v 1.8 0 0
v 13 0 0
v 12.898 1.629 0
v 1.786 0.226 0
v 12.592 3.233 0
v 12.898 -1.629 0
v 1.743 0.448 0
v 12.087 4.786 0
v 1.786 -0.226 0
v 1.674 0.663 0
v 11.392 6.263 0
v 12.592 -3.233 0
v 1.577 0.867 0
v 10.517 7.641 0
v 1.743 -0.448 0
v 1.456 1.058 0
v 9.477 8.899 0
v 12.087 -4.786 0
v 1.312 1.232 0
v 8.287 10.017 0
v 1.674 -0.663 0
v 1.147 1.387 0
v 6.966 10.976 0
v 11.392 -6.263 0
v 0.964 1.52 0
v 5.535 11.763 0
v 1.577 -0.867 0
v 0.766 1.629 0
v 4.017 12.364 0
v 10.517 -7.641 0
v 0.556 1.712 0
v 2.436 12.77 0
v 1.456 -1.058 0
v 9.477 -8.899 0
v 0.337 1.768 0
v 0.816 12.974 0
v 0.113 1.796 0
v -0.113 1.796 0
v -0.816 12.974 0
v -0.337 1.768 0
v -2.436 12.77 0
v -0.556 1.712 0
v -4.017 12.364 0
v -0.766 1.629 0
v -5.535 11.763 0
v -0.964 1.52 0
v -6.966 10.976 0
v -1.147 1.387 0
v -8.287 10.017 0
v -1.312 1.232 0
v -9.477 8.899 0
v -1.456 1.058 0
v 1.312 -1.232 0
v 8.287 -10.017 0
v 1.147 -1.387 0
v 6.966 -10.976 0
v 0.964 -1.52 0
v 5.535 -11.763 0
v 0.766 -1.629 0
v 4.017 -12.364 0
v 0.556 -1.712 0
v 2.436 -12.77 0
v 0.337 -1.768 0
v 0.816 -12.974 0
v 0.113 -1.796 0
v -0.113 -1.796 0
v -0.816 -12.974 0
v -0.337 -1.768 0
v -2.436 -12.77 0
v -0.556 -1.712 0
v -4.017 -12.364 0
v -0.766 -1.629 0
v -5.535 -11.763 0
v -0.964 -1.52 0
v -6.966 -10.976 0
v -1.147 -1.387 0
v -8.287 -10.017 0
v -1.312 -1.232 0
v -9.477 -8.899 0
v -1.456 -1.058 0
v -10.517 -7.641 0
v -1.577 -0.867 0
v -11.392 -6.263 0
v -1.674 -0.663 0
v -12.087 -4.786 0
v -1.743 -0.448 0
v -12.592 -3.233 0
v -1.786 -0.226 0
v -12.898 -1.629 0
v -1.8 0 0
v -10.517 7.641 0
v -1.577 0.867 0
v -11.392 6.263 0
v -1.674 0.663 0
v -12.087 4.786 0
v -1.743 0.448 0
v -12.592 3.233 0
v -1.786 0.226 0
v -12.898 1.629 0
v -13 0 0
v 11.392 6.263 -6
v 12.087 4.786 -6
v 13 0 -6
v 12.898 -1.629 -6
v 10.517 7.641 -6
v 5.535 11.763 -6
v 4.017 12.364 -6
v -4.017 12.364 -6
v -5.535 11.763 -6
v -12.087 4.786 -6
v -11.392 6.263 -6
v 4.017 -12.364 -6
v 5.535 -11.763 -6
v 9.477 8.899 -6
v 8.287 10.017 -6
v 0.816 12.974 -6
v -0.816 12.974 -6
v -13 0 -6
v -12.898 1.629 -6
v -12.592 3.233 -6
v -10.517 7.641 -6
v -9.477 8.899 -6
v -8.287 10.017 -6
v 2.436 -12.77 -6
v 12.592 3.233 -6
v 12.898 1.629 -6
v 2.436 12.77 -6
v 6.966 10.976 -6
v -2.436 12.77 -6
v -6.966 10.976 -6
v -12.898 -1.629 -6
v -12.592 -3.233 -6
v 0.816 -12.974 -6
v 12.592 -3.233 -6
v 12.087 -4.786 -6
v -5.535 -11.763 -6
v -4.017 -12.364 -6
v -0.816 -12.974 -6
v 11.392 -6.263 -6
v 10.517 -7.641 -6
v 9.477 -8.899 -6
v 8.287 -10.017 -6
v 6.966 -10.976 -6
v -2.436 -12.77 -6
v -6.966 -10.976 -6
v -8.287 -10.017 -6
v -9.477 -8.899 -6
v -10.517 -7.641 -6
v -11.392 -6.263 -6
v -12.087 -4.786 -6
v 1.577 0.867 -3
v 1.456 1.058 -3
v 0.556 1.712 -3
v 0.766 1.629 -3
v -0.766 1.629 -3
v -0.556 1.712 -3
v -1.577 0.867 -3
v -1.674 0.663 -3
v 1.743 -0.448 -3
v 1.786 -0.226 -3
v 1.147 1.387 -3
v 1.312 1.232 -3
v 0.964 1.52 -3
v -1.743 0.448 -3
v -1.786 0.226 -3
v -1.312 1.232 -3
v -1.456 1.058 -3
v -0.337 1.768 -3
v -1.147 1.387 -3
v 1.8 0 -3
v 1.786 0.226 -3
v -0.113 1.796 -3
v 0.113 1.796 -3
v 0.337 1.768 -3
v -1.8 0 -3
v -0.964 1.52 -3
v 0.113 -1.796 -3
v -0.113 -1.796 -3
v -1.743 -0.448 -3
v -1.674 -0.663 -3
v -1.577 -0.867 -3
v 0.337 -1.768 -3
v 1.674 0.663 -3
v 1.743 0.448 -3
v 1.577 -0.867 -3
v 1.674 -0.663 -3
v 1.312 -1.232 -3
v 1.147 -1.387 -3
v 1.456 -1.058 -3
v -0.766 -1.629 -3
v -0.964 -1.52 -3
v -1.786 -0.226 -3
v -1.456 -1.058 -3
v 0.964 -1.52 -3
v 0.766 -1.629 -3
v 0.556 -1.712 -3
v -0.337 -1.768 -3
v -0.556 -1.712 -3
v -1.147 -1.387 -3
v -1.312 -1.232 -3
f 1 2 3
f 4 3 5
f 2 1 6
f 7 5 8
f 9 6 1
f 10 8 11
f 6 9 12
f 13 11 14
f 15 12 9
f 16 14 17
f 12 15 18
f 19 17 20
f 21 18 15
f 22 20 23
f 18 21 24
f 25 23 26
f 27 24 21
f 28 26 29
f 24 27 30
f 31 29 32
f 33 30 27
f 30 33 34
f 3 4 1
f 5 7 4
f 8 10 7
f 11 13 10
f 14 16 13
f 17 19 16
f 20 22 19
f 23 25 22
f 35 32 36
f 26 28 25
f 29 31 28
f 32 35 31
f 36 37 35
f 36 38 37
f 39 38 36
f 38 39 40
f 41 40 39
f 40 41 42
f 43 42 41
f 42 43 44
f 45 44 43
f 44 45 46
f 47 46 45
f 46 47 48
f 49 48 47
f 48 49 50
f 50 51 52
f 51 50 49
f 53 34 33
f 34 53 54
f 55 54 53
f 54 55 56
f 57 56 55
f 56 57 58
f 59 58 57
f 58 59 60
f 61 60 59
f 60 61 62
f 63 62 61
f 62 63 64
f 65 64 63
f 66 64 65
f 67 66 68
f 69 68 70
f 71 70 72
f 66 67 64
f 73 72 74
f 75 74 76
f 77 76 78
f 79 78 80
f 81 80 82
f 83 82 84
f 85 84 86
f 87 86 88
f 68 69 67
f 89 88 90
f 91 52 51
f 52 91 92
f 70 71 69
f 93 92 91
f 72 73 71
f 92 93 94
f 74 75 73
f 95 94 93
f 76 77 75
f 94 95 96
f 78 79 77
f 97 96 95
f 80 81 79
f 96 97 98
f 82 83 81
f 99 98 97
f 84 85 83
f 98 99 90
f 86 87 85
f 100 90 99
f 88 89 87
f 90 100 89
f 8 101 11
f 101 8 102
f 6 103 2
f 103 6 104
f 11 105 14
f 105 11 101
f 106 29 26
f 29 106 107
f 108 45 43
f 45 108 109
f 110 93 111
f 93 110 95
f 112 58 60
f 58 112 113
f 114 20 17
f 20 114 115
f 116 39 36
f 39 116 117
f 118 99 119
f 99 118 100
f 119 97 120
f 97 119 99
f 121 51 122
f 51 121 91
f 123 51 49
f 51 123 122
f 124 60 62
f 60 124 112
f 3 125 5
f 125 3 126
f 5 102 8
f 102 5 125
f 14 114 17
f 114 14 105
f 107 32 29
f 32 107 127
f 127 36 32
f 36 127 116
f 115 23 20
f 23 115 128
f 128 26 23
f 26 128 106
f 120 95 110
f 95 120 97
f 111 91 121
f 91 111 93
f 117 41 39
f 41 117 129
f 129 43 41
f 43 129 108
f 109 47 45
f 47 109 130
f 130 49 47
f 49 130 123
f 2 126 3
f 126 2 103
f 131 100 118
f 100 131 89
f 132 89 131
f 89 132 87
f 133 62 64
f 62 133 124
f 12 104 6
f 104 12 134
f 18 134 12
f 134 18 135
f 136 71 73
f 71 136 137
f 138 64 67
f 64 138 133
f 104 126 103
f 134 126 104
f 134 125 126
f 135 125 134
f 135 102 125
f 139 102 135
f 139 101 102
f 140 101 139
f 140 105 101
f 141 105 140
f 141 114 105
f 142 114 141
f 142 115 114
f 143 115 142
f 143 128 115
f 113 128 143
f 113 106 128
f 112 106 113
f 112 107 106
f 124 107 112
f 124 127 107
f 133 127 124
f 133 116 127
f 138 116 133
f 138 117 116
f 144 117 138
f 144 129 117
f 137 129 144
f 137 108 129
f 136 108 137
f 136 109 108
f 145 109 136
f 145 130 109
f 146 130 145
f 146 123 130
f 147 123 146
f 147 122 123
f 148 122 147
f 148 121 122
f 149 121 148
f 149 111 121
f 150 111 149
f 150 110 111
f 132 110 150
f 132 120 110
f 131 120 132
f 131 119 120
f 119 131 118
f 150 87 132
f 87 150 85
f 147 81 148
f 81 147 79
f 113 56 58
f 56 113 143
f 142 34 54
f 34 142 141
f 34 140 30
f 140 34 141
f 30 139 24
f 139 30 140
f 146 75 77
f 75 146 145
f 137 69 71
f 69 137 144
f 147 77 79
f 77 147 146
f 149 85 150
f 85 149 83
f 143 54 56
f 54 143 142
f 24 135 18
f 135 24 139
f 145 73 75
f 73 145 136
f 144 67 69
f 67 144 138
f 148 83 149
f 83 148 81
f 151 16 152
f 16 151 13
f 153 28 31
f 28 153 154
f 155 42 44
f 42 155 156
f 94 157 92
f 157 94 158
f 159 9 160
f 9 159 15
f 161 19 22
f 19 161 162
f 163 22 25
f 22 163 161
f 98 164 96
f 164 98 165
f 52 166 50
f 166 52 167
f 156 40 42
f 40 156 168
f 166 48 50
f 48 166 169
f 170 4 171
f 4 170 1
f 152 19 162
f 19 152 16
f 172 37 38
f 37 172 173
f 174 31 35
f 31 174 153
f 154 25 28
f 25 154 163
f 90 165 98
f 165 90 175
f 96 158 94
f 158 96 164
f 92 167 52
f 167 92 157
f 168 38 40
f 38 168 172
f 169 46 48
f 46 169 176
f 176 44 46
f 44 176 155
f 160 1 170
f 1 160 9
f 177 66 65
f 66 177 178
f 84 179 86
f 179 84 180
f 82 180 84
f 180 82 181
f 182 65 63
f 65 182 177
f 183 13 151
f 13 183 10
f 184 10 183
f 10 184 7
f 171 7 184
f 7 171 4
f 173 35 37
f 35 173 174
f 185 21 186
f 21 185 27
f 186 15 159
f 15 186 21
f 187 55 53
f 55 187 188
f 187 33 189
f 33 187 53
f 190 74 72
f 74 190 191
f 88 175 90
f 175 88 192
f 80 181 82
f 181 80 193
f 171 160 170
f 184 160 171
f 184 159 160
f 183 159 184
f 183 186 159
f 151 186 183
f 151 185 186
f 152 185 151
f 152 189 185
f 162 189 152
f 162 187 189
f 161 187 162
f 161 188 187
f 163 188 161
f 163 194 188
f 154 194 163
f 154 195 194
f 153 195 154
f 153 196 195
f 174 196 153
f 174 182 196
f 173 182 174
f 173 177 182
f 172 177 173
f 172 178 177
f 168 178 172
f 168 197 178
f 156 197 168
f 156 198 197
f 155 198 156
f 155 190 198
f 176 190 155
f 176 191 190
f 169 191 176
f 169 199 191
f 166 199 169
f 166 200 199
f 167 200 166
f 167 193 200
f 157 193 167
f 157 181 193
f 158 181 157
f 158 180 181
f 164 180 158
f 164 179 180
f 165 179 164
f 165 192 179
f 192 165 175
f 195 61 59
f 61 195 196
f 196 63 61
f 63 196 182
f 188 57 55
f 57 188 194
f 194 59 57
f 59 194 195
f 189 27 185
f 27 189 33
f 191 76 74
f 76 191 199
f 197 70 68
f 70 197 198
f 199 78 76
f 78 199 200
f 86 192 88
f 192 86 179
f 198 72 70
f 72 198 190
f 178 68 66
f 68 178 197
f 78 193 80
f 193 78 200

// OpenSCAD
$fn = 50;


difference() {
	union() {
		translate(v = [0, 0, -3.0000000000]) {
			cylinder(h = 3, r = 7.0000000000);
		}
		translate(v = [0, 0, -6.0000000000]) {
			cylinder(h = 6, r = 13.0000000000);
		}
	}
	union() {
		#translate(v = [0, 0, -3]) {
			cylinder(h = 3, r = 1.8000000000);
		}
	}
}
